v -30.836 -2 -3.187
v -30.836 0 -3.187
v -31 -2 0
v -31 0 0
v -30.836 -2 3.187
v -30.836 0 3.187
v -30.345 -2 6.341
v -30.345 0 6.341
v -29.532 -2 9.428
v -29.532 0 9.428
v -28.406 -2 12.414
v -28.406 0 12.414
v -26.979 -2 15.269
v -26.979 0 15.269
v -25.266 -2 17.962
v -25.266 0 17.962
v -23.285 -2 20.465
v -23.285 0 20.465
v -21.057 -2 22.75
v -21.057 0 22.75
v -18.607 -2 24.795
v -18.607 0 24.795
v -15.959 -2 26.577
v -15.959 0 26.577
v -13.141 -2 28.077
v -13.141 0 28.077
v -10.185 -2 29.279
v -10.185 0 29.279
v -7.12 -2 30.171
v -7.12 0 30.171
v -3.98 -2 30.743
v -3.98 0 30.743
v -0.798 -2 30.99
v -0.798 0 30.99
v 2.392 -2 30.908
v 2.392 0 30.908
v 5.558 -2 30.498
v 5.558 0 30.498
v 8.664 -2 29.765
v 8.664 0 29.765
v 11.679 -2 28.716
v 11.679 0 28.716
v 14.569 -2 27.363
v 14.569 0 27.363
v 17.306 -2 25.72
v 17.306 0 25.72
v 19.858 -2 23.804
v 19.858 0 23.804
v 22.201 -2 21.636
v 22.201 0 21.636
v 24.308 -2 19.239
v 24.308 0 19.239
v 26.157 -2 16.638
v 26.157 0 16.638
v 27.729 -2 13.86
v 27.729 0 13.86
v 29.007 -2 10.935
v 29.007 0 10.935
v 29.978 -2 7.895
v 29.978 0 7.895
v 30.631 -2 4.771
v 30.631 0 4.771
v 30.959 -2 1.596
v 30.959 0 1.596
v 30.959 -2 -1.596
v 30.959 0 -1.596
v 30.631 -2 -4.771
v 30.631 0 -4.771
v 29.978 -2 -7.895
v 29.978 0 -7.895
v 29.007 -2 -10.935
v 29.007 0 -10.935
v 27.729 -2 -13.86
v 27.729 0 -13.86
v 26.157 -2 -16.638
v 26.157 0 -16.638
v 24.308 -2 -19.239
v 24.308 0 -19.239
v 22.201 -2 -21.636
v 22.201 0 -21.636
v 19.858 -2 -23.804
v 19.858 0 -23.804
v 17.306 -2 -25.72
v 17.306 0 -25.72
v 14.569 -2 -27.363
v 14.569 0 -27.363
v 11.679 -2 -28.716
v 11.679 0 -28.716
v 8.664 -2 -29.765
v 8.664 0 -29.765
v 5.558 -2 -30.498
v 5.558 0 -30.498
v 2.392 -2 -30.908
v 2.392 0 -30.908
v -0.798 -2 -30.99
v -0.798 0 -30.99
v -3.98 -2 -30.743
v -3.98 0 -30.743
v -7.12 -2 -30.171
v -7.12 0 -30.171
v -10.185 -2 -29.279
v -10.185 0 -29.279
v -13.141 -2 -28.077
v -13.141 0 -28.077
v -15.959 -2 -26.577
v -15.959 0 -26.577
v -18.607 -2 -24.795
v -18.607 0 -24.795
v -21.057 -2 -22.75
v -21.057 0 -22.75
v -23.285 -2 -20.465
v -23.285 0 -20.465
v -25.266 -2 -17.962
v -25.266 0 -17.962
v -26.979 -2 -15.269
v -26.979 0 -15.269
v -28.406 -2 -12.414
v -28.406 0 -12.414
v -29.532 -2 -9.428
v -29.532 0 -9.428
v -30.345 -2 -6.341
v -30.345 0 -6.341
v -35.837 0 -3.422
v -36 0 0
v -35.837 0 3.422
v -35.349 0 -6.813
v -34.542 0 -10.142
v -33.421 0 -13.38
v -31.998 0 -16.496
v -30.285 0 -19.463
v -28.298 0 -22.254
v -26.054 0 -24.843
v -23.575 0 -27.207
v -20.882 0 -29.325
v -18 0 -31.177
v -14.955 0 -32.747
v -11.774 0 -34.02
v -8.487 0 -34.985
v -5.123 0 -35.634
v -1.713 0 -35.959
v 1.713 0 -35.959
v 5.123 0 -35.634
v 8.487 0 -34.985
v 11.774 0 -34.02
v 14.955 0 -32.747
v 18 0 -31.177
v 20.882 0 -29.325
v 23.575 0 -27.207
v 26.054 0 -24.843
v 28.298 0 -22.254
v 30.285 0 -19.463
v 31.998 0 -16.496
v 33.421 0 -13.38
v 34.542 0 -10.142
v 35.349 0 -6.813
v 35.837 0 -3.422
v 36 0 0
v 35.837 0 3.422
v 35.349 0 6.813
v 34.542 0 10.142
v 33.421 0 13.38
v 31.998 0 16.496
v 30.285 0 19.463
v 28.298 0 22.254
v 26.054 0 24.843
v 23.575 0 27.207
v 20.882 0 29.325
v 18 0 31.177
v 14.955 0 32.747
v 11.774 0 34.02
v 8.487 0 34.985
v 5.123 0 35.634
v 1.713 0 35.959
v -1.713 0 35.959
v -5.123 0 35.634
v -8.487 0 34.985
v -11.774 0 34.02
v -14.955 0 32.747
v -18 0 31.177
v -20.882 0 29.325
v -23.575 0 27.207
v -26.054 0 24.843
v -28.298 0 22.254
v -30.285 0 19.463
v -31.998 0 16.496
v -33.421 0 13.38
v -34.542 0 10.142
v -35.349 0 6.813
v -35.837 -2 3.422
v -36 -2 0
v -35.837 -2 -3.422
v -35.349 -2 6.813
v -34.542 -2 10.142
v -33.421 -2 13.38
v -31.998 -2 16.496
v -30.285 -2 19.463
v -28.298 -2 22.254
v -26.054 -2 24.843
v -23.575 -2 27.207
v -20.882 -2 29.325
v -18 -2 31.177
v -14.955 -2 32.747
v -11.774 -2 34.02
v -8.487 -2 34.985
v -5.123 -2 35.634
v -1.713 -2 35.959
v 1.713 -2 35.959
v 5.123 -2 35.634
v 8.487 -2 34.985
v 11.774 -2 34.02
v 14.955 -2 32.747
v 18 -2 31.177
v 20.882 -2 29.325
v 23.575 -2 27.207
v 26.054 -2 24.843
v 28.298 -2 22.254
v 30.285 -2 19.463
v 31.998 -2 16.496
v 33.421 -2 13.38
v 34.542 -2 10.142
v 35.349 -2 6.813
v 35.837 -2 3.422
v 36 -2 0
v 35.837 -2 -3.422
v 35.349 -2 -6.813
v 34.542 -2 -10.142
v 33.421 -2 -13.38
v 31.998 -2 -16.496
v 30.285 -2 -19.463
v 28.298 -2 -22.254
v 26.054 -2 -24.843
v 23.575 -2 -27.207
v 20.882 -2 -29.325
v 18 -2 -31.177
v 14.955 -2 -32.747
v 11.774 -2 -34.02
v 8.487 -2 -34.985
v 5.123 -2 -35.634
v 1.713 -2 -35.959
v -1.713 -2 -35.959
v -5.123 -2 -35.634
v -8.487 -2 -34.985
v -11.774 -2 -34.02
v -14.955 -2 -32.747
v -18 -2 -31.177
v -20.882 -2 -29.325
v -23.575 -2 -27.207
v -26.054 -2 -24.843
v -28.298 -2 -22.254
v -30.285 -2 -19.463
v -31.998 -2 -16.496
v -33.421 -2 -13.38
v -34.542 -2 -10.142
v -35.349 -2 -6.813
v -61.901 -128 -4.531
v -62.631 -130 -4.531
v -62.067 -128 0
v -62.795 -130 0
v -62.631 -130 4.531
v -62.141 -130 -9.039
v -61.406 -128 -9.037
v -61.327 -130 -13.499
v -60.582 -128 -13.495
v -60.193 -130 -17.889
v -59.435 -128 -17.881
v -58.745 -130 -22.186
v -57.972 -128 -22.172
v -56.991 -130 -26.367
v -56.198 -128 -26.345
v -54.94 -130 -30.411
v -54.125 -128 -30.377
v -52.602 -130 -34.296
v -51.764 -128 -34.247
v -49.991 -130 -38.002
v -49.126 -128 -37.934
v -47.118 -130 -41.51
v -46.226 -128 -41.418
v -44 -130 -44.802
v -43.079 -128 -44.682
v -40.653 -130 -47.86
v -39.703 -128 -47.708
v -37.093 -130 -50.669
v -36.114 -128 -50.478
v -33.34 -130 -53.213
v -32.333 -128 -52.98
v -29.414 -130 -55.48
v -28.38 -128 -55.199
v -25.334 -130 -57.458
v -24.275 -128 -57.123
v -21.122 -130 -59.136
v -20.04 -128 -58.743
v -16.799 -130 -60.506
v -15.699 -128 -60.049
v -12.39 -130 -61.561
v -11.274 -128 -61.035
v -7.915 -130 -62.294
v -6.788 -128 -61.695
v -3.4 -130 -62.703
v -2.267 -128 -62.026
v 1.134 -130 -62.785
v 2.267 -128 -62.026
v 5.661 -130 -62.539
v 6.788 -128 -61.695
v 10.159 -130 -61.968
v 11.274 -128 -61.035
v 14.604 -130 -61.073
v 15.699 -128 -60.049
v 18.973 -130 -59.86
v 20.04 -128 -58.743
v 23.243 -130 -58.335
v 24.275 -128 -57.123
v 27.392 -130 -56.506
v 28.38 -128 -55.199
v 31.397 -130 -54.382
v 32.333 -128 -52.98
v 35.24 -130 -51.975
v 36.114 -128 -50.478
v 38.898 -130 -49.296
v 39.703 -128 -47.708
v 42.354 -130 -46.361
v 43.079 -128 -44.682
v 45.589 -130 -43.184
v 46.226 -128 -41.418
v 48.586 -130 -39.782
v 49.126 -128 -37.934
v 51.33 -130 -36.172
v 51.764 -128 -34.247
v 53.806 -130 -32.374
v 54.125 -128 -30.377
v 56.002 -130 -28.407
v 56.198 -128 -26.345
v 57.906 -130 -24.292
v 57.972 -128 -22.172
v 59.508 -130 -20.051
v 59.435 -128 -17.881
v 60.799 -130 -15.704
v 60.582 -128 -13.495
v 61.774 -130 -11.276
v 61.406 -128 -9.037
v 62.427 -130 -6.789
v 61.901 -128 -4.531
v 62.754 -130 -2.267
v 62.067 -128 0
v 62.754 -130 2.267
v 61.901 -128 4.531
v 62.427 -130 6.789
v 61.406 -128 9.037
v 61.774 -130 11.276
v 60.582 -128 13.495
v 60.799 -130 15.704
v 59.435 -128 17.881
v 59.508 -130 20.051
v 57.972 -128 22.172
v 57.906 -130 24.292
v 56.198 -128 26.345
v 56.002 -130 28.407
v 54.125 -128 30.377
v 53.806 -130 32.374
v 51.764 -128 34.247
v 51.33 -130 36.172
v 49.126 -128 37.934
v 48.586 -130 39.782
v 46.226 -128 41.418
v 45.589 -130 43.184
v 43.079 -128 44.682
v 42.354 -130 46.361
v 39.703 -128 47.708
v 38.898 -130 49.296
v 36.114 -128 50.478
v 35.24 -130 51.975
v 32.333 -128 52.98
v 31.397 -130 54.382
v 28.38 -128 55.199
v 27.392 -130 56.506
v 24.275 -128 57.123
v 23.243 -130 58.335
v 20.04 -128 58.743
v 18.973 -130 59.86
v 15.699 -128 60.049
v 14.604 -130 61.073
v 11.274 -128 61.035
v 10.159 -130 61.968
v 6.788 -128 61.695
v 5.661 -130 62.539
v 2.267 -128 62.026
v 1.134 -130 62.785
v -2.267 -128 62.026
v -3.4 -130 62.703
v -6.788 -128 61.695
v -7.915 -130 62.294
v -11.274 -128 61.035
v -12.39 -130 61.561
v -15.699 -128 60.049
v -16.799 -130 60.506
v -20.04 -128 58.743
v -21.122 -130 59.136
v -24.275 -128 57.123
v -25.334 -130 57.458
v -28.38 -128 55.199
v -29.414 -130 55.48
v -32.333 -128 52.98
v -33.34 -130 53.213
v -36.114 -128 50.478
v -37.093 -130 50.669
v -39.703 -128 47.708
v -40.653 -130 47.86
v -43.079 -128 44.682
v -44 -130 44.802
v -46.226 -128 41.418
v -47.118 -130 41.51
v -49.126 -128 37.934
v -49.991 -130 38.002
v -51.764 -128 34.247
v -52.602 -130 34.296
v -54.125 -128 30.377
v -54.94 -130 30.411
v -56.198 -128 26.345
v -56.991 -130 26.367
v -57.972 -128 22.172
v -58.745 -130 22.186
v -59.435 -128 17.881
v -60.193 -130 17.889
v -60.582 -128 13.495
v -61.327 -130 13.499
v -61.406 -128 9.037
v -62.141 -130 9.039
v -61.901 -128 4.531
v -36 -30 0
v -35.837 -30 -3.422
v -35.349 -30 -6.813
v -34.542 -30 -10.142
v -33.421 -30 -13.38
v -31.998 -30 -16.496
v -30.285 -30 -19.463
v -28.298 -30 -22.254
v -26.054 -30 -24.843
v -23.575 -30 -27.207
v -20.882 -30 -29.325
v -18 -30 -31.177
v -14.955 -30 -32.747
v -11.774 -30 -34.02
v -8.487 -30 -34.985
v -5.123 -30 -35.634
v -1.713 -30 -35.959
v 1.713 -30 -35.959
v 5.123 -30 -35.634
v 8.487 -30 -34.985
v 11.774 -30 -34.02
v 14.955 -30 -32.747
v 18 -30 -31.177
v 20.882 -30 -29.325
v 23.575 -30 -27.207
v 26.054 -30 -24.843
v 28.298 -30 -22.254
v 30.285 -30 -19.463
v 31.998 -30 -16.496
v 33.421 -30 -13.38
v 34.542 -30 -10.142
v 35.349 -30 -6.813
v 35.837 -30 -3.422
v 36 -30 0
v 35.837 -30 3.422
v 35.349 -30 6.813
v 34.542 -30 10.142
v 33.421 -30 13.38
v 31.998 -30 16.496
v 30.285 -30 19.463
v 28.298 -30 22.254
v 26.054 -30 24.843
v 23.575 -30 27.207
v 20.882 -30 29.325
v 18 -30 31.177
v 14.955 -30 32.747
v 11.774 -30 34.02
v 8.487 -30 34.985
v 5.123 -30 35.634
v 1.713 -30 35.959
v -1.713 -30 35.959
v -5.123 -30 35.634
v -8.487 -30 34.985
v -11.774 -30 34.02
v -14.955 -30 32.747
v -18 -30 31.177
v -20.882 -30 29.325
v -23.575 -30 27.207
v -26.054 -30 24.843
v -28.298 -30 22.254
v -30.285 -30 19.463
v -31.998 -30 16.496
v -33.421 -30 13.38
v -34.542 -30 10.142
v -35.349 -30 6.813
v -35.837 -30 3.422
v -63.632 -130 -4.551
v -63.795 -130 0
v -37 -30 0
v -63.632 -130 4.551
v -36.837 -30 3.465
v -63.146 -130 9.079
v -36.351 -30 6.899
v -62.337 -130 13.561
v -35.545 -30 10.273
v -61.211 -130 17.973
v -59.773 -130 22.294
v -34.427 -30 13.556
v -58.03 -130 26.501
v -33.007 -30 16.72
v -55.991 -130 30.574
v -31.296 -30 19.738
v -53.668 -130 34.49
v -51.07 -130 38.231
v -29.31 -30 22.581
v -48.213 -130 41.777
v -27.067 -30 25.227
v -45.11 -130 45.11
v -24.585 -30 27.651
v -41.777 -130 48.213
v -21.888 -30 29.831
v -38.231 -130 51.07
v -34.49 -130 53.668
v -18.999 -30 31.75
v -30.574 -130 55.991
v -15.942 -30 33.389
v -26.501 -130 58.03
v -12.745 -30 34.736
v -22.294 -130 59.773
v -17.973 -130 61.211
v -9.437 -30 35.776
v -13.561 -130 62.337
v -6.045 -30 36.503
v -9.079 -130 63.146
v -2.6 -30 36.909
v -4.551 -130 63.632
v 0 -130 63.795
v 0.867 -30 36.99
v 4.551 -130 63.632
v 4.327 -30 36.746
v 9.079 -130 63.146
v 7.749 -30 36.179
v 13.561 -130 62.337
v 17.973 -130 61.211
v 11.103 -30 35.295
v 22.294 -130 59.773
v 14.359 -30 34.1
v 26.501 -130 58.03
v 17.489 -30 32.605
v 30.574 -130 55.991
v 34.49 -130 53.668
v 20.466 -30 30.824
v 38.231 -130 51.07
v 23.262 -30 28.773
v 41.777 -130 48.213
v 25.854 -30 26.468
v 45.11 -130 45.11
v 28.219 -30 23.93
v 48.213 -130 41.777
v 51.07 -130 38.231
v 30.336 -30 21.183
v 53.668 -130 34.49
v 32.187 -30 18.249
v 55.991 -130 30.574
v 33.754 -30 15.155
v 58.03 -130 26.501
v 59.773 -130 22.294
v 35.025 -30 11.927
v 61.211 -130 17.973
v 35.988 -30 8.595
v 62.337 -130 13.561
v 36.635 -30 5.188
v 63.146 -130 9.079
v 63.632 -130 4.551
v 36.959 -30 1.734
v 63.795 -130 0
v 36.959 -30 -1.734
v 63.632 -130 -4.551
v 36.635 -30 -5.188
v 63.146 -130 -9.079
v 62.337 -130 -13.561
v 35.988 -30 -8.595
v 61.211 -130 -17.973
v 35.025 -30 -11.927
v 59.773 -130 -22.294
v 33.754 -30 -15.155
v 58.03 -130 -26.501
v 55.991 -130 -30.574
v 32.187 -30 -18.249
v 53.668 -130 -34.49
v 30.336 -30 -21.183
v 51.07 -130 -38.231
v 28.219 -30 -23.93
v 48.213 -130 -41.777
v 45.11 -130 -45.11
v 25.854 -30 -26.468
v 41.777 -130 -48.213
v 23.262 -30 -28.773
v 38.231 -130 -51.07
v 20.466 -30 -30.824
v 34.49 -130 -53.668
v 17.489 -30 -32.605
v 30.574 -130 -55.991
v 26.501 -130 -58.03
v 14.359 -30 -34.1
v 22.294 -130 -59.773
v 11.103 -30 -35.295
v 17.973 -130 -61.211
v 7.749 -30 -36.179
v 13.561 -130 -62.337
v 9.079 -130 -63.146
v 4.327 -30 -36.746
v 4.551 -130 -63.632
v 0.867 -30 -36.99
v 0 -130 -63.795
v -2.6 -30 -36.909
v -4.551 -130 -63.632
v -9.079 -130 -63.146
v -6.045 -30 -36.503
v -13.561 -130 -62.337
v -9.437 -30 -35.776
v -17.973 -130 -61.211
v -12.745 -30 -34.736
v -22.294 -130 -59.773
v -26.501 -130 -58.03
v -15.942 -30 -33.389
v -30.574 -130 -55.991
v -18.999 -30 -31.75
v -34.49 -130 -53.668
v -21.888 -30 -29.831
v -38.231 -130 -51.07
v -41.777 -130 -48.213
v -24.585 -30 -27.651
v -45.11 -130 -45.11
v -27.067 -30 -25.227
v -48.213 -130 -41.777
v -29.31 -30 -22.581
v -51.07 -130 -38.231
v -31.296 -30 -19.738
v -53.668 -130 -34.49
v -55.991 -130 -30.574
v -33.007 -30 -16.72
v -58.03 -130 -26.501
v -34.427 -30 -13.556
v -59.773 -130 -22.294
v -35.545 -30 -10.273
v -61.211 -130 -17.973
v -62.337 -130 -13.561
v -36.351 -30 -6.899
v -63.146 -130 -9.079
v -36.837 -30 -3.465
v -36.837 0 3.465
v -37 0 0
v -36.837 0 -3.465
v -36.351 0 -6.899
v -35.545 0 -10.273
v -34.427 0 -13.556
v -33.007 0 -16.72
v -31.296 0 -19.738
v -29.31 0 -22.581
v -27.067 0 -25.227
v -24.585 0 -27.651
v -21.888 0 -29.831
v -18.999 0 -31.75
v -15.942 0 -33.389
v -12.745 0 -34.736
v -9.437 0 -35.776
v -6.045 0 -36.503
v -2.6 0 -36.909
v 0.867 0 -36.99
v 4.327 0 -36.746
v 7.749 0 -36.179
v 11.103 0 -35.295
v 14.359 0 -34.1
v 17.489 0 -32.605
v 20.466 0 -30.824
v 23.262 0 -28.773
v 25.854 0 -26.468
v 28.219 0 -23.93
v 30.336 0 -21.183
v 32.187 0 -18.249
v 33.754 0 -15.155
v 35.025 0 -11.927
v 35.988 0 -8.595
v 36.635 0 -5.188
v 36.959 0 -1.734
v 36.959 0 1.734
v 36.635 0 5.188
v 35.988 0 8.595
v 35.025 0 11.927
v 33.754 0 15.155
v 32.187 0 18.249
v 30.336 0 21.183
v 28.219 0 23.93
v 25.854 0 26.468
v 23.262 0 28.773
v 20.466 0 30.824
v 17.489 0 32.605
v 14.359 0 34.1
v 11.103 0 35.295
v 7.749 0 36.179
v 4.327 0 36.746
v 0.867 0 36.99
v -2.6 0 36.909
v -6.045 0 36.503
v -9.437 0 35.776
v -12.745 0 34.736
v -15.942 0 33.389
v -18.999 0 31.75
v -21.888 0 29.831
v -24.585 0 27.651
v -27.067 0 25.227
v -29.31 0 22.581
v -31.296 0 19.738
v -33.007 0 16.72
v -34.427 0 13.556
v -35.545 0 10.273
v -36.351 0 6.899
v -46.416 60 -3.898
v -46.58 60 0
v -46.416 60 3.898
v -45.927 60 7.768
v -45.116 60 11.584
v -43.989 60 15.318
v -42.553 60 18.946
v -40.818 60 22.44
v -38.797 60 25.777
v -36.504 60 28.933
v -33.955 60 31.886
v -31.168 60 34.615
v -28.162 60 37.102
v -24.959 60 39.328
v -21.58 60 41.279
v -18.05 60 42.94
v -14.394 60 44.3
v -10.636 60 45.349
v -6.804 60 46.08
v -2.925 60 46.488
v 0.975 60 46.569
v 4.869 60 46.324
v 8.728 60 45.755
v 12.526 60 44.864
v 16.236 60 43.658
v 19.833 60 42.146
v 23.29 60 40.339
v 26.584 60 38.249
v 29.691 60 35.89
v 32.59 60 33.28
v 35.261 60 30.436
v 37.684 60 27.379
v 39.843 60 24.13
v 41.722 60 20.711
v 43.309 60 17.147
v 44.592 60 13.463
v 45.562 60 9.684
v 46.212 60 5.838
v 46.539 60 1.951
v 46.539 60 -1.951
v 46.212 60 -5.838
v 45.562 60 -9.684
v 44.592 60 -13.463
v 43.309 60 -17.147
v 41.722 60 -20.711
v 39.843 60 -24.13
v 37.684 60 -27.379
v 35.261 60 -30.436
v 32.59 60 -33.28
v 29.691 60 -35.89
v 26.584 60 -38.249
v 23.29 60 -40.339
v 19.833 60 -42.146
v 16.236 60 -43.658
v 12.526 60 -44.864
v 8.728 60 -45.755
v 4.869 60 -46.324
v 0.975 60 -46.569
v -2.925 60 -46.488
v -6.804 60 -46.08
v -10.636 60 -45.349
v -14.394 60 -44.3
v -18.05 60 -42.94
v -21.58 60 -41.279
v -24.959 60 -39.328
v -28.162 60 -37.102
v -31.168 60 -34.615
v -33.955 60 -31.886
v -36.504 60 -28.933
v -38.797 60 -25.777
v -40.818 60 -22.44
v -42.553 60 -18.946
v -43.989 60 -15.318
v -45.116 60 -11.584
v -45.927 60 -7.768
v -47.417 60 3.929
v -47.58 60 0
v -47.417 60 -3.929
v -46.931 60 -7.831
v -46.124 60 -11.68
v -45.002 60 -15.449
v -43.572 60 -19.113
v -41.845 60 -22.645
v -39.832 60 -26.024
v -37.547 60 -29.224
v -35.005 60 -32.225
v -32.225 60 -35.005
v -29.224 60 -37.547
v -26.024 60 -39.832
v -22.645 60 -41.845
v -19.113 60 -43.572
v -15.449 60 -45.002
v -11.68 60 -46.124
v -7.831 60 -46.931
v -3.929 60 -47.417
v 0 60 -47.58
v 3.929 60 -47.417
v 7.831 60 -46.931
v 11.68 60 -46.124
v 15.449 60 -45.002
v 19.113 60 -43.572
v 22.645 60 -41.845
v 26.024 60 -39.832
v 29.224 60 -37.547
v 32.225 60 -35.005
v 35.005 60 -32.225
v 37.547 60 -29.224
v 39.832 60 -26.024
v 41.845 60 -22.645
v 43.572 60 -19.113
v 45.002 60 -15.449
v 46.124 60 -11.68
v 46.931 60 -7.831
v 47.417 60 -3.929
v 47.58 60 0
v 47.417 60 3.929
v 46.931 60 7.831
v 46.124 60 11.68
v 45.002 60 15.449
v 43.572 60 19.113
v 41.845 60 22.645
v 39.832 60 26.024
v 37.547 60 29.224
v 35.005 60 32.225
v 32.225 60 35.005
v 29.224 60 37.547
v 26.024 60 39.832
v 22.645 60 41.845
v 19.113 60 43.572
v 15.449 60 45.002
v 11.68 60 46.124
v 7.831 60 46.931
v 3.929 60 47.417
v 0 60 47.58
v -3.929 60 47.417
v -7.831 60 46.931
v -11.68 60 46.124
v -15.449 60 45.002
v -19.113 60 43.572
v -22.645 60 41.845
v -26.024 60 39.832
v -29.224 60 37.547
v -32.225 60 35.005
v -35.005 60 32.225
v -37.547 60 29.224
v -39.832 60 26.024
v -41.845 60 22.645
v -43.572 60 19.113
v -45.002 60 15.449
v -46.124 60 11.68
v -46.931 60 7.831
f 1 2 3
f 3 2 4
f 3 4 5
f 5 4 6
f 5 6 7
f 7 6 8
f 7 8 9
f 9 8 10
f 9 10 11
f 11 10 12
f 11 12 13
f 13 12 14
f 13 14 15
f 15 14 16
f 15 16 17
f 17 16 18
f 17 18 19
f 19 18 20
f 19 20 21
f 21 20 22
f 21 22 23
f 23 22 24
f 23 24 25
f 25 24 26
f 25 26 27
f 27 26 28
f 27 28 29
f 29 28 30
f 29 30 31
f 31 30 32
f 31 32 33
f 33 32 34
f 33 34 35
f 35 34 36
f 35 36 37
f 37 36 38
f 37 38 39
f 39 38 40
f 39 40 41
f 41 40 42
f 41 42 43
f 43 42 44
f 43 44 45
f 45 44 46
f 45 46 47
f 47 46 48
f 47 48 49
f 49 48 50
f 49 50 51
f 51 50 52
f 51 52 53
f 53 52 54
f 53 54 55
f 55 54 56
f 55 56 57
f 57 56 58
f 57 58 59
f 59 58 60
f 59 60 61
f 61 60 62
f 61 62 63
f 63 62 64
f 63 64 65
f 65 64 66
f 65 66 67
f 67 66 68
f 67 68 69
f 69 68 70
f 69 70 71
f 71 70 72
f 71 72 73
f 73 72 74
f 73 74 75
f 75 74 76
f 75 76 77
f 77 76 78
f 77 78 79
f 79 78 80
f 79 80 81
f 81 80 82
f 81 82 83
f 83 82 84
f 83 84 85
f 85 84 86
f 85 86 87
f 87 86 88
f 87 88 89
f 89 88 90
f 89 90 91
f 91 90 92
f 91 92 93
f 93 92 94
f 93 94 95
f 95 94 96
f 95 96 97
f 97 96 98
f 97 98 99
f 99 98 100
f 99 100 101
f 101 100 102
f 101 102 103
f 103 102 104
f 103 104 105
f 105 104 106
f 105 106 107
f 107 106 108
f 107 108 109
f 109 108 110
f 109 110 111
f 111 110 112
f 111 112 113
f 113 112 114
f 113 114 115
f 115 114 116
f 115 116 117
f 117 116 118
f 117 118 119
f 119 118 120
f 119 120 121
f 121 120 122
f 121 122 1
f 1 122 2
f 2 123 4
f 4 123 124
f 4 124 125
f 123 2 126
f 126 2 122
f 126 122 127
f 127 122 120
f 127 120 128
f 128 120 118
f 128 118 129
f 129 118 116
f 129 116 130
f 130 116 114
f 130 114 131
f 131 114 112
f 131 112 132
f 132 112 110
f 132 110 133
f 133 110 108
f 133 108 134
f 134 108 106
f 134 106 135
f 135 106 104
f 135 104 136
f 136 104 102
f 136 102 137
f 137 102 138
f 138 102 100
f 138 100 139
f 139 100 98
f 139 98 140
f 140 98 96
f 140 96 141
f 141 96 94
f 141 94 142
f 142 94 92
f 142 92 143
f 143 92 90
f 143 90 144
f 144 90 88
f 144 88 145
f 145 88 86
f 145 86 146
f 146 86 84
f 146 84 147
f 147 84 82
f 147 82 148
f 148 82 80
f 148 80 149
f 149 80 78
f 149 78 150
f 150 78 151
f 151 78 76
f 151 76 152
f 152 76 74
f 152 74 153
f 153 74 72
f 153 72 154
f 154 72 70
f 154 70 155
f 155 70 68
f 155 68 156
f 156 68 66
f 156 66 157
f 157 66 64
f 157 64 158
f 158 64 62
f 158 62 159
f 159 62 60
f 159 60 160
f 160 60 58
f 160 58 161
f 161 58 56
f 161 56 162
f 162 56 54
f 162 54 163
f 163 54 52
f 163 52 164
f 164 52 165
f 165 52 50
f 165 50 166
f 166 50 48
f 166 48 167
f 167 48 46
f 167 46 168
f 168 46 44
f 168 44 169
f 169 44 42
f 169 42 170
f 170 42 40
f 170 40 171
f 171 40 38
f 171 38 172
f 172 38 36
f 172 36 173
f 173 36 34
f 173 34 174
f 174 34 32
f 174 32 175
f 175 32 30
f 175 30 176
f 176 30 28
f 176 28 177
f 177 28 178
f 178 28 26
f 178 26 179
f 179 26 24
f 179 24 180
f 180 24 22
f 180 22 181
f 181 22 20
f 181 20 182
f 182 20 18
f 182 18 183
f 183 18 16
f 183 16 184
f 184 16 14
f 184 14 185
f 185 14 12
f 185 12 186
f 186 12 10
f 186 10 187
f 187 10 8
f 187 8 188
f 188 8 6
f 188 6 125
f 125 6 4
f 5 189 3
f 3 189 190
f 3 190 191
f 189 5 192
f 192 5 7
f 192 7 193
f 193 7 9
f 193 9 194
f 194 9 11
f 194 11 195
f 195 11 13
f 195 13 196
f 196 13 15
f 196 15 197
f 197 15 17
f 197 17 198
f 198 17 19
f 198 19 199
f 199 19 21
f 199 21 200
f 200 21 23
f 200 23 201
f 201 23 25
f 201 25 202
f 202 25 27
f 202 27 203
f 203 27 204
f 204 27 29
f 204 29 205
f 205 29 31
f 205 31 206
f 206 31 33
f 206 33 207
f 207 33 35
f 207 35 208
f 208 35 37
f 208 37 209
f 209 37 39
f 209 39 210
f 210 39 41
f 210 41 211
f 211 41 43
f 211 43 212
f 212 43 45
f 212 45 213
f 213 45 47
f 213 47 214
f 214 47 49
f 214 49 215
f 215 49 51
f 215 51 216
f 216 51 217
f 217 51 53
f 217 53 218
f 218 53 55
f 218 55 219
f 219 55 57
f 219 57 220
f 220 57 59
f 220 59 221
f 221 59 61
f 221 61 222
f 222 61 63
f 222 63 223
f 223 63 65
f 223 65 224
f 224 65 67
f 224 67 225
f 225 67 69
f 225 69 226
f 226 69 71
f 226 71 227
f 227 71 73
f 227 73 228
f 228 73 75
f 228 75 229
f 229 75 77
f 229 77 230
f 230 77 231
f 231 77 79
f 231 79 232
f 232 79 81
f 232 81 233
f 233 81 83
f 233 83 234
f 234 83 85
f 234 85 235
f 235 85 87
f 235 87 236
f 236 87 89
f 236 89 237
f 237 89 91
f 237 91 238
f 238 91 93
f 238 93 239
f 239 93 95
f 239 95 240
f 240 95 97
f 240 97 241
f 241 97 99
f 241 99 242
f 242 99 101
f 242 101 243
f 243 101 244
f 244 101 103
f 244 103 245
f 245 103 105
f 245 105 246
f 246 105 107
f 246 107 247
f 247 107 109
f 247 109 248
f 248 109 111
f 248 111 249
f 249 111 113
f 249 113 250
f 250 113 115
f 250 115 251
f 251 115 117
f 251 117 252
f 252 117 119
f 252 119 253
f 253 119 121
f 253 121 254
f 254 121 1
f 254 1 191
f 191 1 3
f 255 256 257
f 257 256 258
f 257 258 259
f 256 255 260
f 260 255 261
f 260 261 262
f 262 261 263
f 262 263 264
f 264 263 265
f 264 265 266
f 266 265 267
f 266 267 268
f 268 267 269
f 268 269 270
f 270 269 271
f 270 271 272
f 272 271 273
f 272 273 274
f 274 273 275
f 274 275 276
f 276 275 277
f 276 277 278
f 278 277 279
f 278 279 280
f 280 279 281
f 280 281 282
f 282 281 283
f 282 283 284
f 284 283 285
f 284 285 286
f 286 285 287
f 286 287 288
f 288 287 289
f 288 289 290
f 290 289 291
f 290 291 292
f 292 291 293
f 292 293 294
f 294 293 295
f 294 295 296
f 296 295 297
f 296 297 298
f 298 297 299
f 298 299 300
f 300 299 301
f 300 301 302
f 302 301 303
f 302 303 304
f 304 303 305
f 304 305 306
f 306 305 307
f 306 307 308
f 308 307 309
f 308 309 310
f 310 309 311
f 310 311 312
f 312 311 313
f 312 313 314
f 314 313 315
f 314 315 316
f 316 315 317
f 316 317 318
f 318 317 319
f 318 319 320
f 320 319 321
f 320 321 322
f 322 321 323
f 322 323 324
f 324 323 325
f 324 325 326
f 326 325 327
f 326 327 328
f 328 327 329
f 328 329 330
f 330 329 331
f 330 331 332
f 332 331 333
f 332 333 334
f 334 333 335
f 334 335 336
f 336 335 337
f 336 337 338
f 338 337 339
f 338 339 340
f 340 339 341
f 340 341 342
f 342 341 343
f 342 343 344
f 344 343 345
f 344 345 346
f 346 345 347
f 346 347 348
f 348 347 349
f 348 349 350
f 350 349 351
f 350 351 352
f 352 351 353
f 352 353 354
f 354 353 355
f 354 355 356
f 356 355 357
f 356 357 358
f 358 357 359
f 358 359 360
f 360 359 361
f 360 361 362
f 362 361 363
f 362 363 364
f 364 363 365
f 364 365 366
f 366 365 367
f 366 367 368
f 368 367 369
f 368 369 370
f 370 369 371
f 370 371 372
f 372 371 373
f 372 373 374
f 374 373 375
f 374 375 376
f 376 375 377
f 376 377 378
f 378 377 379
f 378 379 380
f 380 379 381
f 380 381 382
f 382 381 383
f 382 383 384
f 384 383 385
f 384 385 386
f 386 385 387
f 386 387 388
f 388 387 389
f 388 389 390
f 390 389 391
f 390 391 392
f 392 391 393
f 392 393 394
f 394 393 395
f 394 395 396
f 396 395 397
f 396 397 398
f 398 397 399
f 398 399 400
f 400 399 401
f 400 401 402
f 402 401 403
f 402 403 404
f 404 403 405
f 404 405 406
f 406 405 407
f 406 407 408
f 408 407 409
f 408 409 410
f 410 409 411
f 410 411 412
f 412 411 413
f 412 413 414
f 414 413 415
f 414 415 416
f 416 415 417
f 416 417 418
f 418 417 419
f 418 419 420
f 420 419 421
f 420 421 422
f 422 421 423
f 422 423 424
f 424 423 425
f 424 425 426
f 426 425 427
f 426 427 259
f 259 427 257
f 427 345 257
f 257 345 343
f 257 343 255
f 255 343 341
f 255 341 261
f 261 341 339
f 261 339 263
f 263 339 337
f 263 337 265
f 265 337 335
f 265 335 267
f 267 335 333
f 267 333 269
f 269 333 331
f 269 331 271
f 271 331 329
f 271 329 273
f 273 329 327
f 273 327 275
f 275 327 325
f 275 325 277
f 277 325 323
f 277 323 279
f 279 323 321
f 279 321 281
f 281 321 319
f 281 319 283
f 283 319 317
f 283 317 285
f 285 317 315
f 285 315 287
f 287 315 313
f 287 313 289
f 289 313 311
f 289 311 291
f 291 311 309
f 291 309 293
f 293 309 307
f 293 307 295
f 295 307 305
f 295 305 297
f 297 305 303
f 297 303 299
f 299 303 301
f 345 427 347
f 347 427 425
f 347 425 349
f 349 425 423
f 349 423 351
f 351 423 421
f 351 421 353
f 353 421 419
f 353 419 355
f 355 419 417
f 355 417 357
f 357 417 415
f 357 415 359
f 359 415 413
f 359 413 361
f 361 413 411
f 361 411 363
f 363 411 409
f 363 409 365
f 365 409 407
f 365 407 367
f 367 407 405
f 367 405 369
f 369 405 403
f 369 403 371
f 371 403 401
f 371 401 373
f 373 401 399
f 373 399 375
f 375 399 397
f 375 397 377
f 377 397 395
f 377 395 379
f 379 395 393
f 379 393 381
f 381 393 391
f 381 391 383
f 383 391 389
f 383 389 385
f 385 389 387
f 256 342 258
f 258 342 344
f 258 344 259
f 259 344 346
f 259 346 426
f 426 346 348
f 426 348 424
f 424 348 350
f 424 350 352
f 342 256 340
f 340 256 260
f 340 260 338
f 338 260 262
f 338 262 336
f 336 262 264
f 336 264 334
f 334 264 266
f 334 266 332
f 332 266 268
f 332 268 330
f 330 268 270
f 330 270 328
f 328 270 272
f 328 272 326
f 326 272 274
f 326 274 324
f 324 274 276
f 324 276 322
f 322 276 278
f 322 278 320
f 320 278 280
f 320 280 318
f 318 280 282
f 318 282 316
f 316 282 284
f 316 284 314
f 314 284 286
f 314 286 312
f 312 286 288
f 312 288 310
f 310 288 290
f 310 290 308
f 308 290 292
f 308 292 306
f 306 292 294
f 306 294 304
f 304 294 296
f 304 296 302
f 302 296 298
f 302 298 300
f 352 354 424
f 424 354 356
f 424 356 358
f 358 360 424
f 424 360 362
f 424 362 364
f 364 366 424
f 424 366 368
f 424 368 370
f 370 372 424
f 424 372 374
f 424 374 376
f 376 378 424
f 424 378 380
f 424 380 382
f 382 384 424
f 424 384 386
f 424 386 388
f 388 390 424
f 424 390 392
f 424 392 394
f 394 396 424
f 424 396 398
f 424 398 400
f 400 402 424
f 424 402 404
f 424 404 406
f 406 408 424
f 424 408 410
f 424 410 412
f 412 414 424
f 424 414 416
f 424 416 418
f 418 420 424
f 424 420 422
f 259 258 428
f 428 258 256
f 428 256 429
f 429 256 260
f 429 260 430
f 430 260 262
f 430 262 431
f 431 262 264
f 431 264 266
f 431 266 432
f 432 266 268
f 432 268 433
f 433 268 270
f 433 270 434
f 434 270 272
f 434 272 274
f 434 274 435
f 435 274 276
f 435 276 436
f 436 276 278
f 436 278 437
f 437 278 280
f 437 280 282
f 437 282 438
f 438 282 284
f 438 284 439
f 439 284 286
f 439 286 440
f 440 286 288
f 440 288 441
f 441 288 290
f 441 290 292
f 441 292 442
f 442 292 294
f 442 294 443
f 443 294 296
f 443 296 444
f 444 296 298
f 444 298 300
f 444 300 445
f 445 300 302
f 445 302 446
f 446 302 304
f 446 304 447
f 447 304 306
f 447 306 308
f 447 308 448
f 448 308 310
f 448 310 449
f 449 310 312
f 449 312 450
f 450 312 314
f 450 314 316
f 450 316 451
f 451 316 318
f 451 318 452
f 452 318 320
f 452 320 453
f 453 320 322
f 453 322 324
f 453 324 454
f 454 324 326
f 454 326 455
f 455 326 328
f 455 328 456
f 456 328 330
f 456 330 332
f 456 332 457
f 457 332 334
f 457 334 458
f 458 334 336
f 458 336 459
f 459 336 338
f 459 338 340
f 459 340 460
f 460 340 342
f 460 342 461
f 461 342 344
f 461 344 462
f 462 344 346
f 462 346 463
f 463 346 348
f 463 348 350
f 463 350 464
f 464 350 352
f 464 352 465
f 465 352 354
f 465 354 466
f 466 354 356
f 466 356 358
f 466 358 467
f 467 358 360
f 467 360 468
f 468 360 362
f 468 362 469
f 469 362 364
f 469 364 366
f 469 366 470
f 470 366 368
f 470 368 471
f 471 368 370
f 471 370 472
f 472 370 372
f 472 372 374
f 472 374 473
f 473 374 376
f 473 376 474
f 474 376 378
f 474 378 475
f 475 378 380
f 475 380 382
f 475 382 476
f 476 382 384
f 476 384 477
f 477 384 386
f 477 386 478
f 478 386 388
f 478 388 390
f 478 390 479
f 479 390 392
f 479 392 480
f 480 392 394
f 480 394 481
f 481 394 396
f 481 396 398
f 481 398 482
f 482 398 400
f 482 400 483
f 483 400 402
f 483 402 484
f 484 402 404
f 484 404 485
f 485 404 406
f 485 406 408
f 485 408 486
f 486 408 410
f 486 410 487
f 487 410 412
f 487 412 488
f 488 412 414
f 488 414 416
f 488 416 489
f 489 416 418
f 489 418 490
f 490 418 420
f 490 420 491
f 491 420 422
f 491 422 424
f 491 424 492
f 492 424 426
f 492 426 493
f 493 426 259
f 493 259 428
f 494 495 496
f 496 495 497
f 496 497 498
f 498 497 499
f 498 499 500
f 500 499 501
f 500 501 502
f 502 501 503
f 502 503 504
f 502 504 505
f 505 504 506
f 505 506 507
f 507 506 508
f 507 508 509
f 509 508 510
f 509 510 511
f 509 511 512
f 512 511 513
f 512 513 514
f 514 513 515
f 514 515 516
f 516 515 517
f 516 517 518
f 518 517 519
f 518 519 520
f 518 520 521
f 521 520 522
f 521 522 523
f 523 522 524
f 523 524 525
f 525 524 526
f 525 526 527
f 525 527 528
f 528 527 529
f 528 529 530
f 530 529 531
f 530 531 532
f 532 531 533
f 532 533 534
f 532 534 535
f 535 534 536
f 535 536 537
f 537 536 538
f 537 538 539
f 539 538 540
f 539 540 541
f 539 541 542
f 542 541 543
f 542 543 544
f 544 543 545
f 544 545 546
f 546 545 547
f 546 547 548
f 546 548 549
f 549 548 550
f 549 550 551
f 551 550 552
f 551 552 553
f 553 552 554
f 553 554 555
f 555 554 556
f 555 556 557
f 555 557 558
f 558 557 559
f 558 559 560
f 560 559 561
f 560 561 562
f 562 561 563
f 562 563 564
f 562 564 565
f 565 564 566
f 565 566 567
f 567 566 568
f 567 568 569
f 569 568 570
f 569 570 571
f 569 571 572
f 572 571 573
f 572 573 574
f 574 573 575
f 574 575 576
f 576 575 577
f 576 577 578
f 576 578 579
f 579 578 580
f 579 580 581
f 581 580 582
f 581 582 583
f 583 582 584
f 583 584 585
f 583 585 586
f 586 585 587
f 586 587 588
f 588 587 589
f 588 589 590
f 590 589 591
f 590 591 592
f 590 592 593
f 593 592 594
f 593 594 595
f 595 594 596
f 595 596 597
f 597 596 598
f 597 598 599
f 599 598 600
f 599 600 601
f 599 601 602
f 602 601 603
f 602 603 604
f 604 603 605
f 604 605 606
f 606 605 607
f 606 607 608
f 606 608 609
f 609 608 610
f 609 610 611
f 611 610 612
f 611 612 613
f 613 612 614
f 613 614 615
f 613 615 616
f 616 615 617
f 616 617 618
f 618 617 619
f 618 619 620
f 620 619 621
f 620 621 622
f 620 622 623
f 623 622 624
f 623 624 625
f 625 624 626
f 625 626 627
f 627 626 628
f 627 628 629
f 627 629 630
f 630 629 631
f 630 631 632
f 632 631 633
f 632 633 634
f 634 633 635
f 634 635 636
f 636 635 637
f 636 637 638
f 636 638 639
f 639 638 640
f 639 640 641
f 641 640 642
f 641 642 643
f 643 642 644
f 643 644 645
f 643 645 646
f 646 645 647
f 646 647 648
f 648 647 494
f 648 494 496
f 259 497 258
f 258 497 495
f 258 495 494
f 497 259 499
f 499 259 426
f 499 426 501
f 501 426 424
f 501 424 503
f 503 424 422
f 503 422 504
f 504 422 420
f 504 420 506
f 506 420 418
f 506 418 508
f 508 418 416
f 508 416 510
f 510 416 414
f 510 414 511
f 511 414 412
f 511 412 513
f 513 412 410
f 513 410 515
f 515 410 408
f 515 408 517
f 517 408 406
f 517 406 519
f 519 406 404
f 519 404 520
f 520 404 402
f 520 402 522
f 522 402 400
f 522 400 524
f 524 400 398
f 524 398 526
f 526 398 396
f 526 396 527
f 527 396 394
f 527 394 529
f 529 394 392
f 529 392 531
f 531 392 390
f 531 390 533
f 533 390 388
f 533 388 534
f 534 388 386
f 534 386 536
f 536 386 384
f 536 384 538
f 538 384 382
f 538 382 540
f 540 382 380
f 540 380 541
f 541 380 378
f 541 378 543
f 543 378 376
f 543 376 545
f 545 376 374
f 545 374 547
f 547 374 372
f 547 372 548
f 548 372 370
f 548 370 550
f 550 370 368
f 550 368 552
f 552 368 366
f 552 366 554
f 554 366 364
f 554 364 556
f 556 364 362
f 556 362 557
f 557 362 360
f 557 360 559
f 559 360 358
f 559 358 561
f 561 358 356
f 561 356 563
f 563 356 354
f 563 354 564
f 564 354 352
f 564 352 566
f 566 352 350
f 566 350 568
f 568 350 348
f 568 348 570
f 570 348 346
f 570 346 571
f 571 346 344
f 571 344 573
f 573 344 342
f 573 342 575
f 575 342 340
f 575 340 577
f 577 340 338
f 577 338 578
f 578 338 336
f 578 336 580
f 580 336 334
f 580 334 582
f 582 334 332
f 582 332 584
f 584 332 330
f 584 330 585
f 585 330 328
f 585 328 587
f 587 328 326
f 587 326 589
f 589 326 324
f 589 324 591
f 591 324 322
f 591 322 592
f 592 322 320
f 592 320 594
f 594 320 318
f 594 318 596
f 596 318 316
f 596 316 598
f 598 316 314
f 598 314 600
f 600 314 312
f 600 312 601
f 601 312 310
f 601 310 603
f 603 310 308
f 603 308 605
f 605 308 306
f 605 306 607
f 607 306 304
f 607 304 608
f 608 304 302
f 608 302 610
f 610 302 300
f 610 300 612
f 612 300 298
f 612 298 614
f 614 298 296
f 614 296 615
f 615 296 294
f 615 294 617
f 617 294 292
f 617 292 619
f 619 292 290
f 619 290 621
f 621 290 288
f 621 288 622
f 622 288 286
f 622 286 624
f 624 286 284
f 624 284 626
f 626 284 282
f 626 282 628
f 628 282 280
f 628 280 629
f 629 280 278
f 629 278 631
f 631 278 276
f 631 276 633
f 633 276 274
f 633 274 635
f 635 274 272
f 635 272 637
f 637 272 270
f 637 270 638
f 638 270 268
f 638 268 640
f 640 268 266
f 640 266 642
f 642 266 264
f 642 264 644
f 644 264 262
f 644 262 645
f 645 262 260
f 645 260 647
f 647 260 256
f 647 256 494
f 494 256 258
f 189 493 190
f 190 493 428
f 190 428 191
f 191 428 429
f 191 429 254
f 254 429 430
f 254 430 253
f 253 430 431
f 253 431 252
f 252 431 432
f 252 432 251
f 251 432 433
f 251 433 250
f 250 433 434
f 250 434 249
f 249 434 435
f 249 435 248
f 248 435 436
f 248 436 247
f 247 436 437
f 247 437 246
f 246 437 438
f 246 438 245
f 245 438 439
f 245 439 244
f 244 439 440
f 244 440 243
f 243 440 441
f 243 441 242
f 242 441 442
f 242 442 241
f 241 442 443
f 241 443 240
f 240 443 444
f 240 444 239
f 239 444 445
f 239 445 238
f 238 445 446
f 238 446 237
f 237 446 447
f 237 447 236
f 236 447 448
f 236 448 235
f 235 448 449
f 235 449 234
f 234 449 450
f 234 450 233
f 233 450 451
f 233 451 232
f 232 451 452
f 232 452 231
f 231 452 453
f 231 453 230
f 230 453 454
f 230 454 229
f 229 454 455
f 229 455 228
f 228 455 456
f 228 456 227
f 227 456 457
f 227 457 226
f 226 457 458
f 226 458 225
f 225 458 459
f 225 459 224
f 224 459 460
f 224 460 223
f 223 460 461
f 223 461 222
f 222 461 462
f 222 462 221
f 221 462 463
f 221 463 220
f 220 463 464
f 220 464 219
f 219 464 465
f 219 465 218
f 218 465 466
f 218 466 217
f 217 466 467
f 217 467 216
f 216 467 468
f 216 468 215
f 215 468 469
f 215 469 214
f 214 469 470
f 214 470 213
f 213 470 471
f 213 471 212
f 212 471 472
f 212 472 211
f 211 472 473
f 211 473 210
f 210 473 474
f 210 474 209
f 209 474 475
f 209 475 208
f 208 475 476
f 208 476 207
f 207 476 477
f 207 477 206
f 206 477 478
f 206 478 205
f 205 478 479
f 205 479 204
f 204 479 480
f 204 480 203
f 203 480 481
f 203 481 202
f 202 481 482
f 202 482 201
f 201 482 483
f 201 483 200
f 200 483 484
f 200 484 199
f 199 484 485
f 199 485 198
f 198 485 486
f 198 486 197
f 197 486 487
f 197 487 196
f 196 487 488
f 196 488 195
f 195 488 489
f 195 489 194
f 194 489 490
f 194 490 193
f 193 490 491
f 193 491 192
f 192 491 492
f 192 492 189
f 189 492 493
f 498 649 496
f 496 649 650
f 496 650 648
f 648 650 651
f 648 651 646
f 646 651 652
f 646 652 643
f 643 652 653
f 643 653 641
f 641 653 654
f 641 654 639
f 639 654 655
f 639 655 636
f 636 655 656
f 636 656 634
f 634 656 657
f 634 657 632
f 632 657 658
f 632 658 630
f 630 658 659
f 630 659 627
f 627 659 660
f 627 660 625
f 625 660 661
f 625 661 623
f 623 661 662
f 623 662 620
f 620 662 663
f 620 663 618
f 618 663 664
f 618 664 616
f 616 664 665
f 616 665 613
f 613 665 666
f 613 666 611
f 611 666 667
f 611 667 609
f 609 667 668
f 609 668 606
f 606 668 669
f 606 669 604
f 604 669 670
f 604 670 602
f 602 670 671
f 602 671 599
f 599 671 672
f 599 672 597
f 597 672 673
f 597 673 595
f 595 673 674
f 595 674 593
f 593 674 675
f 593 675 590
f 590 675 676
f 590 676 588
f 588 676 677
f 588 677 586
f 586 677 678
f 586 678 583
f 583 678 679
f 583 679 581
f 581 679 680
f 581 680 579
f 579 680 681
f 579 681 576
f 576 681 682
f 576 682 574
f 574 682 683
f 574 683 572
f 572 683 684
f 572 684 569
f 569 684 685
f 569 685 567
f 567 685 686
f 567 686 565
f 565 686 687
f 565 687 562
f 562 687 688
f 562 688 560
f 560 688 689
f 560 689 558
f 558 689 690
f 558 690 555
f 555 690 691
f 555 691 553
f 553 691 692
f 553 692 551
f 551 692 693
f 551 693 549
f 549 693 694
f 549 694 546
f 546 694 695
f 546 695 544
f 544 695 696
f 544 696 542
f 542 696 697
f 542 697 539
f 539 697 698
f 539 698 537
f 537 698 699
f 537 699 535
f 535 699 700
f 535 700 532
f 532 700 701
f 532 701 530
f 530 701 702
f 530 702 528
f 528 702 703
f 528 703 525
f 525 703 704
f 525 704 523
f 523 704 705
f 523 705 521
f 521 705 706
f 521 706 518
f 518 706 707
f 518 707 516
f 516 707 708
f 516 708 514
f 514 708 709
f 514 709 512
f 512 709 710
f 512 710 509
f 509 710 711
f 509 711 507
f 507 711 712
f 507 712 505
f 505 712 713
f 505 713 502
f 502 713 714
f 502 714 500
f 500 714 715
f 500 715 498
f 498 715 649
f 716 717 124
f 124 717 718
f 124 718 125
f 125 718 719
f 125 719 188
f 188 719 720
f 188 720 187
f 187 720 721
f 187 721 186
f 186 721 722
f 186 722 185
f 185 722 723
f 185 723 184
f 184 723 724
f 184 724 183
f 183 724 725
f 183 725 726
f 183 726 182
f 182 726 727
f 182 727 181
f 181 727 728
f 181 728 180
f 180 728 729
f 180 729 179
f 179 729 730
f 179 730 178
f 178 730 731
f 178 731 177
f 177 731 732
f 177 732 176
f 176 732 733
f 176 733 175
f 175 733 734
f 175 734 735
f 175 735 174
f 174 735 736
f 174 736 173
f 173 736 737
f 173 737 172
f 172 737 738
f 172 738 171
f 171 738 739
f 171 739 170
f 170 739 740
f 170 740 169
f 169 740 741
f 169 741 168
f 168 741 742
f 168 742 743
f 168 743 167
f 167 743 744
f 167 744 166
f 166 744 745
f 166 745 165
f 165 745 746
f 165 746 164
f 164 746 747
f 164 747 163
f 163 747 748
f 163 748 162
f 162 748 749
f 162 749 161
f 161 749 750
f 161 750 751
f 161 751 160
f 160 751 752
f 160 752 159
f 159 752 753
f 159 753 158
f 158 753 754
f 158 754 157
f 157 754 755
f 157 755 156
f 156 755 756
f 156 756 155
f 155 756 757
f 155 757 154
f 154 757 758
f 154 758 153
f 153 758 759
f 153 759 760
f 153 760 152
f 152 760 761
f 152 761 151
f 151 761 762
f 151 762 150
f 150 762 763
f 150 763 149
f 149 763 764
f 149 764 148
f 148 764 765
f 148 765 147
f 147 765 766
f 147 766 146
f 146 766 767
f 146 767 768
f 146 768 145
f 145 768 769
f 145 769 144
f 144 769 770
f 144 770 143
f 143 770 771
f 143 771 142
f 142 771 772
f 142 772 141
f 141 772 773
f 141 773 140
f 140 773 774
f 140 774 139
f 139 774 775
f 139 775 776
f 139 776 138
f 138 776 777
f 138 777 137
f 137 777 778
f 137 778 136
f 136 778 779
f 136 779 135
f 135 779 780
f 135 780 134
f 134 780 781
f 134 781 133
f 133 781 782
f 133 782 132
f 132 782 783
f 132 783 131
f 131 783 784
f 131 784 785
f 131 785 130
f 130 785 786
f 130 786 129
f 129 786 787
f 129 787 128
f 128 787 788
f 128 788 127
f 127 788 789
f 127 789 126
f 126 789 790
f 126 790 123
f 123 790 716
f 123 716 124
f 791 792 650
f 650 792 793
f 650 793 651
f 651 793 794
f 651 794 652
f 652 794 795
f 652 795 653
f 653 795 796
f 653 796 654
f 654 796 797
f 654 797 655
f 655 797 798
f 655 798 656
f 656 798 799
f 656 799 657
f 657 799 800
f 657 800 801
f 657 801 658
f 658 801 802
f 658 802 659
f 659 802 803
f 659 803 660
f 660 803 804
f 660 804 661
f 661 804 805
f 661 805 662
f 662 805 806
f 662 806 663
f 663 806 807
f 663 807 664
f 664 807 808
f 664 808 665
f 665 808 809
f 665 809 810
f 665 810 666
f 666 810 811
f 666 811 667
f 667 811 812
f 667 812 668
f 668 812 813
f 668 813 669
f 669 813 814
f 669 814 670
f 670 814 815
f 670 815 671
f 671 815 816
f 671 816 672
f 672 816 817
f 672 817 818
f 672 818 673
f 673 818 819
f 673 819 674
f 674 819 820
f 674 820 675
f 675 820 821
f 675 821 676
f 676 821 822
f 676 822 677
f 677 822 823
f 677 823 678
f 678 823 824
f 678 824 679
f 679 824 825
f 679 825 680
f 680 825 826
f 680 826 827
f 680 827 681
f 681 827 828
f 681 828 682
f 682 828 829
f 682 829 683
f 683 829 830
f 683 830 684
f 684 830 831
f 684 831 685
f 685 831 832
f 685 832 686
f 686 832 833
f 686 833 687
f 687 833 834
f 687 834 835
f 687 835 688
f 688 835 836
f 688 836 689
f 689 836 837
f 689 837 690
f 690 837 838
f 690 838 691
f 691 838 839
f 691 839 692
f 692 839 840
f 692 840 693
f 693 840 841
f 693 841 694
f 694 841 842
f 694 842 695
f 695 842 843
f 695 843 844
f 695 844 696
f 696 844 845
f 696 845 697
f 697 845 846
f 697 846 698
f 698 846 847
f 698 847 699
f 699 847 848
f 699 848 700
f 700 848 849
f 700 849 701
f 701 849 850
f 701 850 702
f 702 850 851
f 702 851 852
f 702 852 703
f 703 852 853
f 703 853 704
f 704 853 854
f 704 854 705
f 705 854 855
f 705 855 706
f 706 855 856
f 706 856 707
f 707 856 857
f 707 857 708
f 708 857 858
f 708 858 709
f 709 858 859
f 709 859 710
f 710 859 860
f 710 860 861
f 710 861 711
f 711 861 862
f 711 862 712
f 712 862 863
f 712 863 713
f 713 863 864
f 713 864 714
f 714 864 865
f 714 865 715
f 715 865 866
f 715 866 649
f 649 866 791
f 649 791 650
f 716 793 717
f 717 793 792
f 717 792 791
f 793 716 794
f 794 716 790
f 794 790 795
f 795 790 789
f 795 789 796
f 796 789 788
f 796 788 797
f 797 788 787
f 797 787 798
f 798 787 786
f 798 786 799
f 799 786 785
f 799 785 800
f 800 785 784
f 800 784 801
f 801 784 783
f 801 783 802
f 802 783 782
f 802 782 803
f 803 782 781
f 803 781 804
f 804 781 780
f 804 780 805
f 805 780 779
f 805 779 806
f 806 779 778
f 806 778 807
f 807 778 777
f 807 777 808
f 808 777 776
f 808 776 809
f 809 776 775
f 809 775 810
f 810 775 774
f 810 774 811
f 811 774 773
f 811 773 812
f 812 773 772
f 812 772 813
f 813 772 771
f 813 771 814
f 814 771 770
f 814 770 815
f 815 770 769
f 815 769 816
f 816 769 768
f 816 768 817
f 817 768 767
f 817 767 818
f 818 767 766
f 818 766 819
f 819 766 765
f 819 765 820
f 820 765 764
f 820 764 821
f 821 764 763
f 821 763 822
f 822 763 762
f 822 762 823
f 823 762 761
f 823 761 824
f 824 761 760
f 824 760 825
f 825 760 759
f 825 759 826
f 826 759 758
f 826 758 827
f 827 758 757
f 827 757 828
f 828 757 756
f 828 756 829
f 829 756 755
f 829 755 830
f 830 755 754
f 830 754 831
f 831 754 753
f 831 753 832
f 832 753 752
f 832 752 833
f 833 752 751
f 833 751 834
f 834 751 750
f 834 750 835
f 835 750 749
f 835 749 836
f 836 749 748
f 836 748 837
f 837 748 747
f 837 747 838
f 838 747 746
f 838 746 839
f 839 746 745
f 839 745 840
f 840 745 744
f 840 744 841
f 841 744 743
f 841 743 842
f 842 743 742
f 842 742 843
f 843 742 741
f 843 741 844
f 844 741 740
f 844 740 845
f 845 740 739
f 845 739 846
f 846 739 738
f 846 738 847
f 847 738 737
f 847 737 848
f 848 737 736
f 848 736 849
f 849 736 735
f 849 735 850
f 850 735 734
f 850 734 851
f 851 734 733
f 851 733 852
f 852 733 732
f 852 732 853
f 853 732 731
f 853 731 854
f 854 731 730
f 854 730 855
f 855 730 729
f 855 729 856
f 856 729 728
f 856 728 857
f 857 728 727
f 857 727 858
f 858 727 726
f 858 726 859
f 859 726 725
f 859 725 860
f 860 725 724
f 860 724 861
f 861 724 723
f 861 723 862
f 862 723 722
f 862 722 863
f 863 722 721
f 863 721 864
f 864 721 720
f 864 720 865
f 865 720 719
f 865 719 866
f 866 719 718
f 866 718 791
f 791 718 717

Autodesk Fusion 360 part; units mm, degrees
sketch "草图1" plane through (0, 0, 0) normal (0, 1, 0) x (1, 0, 0)
  circle A0 centre (0, 0) radius 46.5
  circle A1 centre (0, 0) radius 47.5
  circle A2 centre (0, 0) radius 36
  circle A3 centre (0, 0) radius 37
  circle A4 centre (0, 0) radius 45.5
  circle A5 centre (0, 0) radius 30
  circle A6 centre (0, 0) radius 29
  circle A7 centre (0, 0) radius 31
  dimension "d1" = 93
  dimension "d2" = 95
  dimension "d5" = 72
  dimension "d6" = 74
  dimension "d21" = 91
  dimension "d26" = 60
  dimension "d29" = 58
  dimension "d30" = 62
extrude "拉伸8" add sketch "草图1" along normal blind 60 draft 10 contours A3
extrude "拉伸9" cut sketch "草图1" along normal blind 60 draft 10 contours A2 | A5 | A6 | A7
extrude "拉伸11" add sketch "草图1" against normal blind 30 contours A3
sketch "草图5" plane through (0, -30, 0) normal (0, -1, 0) x (1, 0, 0)
  circle A0 centre (0, 0) radius 36
  circle A1 centre (0, 0) radius 37
extrude "拉伸13" add sketch "草图5" along normal blind 100 draft 15
extrude "拉伸14" cut sketch "草图5" along normal blind 100 draft 15 contours A0
sketch "草图6" plane through (0, -130, 0) normal (0, -1, 0) x (1, 0, 0)
  circle A0 centre (0, 0) radius 62.7949
  circle A1 centre (0, 0) radius 63.7949
extrude "拉伸15" add sketch "草图6" against normal blind 2 draft -20 contours A0
extrude "拉伸16" add sketch "草图1" against normal blind 2 contours A2
sketch "草图7" plane through (0, 60, 0) normal (0, 1, 0) x (-1, 0, 0)
  circle A0 centre (0, 0) radius 46.5796
  circle A1 centre (0, 0) radius 47.5796
